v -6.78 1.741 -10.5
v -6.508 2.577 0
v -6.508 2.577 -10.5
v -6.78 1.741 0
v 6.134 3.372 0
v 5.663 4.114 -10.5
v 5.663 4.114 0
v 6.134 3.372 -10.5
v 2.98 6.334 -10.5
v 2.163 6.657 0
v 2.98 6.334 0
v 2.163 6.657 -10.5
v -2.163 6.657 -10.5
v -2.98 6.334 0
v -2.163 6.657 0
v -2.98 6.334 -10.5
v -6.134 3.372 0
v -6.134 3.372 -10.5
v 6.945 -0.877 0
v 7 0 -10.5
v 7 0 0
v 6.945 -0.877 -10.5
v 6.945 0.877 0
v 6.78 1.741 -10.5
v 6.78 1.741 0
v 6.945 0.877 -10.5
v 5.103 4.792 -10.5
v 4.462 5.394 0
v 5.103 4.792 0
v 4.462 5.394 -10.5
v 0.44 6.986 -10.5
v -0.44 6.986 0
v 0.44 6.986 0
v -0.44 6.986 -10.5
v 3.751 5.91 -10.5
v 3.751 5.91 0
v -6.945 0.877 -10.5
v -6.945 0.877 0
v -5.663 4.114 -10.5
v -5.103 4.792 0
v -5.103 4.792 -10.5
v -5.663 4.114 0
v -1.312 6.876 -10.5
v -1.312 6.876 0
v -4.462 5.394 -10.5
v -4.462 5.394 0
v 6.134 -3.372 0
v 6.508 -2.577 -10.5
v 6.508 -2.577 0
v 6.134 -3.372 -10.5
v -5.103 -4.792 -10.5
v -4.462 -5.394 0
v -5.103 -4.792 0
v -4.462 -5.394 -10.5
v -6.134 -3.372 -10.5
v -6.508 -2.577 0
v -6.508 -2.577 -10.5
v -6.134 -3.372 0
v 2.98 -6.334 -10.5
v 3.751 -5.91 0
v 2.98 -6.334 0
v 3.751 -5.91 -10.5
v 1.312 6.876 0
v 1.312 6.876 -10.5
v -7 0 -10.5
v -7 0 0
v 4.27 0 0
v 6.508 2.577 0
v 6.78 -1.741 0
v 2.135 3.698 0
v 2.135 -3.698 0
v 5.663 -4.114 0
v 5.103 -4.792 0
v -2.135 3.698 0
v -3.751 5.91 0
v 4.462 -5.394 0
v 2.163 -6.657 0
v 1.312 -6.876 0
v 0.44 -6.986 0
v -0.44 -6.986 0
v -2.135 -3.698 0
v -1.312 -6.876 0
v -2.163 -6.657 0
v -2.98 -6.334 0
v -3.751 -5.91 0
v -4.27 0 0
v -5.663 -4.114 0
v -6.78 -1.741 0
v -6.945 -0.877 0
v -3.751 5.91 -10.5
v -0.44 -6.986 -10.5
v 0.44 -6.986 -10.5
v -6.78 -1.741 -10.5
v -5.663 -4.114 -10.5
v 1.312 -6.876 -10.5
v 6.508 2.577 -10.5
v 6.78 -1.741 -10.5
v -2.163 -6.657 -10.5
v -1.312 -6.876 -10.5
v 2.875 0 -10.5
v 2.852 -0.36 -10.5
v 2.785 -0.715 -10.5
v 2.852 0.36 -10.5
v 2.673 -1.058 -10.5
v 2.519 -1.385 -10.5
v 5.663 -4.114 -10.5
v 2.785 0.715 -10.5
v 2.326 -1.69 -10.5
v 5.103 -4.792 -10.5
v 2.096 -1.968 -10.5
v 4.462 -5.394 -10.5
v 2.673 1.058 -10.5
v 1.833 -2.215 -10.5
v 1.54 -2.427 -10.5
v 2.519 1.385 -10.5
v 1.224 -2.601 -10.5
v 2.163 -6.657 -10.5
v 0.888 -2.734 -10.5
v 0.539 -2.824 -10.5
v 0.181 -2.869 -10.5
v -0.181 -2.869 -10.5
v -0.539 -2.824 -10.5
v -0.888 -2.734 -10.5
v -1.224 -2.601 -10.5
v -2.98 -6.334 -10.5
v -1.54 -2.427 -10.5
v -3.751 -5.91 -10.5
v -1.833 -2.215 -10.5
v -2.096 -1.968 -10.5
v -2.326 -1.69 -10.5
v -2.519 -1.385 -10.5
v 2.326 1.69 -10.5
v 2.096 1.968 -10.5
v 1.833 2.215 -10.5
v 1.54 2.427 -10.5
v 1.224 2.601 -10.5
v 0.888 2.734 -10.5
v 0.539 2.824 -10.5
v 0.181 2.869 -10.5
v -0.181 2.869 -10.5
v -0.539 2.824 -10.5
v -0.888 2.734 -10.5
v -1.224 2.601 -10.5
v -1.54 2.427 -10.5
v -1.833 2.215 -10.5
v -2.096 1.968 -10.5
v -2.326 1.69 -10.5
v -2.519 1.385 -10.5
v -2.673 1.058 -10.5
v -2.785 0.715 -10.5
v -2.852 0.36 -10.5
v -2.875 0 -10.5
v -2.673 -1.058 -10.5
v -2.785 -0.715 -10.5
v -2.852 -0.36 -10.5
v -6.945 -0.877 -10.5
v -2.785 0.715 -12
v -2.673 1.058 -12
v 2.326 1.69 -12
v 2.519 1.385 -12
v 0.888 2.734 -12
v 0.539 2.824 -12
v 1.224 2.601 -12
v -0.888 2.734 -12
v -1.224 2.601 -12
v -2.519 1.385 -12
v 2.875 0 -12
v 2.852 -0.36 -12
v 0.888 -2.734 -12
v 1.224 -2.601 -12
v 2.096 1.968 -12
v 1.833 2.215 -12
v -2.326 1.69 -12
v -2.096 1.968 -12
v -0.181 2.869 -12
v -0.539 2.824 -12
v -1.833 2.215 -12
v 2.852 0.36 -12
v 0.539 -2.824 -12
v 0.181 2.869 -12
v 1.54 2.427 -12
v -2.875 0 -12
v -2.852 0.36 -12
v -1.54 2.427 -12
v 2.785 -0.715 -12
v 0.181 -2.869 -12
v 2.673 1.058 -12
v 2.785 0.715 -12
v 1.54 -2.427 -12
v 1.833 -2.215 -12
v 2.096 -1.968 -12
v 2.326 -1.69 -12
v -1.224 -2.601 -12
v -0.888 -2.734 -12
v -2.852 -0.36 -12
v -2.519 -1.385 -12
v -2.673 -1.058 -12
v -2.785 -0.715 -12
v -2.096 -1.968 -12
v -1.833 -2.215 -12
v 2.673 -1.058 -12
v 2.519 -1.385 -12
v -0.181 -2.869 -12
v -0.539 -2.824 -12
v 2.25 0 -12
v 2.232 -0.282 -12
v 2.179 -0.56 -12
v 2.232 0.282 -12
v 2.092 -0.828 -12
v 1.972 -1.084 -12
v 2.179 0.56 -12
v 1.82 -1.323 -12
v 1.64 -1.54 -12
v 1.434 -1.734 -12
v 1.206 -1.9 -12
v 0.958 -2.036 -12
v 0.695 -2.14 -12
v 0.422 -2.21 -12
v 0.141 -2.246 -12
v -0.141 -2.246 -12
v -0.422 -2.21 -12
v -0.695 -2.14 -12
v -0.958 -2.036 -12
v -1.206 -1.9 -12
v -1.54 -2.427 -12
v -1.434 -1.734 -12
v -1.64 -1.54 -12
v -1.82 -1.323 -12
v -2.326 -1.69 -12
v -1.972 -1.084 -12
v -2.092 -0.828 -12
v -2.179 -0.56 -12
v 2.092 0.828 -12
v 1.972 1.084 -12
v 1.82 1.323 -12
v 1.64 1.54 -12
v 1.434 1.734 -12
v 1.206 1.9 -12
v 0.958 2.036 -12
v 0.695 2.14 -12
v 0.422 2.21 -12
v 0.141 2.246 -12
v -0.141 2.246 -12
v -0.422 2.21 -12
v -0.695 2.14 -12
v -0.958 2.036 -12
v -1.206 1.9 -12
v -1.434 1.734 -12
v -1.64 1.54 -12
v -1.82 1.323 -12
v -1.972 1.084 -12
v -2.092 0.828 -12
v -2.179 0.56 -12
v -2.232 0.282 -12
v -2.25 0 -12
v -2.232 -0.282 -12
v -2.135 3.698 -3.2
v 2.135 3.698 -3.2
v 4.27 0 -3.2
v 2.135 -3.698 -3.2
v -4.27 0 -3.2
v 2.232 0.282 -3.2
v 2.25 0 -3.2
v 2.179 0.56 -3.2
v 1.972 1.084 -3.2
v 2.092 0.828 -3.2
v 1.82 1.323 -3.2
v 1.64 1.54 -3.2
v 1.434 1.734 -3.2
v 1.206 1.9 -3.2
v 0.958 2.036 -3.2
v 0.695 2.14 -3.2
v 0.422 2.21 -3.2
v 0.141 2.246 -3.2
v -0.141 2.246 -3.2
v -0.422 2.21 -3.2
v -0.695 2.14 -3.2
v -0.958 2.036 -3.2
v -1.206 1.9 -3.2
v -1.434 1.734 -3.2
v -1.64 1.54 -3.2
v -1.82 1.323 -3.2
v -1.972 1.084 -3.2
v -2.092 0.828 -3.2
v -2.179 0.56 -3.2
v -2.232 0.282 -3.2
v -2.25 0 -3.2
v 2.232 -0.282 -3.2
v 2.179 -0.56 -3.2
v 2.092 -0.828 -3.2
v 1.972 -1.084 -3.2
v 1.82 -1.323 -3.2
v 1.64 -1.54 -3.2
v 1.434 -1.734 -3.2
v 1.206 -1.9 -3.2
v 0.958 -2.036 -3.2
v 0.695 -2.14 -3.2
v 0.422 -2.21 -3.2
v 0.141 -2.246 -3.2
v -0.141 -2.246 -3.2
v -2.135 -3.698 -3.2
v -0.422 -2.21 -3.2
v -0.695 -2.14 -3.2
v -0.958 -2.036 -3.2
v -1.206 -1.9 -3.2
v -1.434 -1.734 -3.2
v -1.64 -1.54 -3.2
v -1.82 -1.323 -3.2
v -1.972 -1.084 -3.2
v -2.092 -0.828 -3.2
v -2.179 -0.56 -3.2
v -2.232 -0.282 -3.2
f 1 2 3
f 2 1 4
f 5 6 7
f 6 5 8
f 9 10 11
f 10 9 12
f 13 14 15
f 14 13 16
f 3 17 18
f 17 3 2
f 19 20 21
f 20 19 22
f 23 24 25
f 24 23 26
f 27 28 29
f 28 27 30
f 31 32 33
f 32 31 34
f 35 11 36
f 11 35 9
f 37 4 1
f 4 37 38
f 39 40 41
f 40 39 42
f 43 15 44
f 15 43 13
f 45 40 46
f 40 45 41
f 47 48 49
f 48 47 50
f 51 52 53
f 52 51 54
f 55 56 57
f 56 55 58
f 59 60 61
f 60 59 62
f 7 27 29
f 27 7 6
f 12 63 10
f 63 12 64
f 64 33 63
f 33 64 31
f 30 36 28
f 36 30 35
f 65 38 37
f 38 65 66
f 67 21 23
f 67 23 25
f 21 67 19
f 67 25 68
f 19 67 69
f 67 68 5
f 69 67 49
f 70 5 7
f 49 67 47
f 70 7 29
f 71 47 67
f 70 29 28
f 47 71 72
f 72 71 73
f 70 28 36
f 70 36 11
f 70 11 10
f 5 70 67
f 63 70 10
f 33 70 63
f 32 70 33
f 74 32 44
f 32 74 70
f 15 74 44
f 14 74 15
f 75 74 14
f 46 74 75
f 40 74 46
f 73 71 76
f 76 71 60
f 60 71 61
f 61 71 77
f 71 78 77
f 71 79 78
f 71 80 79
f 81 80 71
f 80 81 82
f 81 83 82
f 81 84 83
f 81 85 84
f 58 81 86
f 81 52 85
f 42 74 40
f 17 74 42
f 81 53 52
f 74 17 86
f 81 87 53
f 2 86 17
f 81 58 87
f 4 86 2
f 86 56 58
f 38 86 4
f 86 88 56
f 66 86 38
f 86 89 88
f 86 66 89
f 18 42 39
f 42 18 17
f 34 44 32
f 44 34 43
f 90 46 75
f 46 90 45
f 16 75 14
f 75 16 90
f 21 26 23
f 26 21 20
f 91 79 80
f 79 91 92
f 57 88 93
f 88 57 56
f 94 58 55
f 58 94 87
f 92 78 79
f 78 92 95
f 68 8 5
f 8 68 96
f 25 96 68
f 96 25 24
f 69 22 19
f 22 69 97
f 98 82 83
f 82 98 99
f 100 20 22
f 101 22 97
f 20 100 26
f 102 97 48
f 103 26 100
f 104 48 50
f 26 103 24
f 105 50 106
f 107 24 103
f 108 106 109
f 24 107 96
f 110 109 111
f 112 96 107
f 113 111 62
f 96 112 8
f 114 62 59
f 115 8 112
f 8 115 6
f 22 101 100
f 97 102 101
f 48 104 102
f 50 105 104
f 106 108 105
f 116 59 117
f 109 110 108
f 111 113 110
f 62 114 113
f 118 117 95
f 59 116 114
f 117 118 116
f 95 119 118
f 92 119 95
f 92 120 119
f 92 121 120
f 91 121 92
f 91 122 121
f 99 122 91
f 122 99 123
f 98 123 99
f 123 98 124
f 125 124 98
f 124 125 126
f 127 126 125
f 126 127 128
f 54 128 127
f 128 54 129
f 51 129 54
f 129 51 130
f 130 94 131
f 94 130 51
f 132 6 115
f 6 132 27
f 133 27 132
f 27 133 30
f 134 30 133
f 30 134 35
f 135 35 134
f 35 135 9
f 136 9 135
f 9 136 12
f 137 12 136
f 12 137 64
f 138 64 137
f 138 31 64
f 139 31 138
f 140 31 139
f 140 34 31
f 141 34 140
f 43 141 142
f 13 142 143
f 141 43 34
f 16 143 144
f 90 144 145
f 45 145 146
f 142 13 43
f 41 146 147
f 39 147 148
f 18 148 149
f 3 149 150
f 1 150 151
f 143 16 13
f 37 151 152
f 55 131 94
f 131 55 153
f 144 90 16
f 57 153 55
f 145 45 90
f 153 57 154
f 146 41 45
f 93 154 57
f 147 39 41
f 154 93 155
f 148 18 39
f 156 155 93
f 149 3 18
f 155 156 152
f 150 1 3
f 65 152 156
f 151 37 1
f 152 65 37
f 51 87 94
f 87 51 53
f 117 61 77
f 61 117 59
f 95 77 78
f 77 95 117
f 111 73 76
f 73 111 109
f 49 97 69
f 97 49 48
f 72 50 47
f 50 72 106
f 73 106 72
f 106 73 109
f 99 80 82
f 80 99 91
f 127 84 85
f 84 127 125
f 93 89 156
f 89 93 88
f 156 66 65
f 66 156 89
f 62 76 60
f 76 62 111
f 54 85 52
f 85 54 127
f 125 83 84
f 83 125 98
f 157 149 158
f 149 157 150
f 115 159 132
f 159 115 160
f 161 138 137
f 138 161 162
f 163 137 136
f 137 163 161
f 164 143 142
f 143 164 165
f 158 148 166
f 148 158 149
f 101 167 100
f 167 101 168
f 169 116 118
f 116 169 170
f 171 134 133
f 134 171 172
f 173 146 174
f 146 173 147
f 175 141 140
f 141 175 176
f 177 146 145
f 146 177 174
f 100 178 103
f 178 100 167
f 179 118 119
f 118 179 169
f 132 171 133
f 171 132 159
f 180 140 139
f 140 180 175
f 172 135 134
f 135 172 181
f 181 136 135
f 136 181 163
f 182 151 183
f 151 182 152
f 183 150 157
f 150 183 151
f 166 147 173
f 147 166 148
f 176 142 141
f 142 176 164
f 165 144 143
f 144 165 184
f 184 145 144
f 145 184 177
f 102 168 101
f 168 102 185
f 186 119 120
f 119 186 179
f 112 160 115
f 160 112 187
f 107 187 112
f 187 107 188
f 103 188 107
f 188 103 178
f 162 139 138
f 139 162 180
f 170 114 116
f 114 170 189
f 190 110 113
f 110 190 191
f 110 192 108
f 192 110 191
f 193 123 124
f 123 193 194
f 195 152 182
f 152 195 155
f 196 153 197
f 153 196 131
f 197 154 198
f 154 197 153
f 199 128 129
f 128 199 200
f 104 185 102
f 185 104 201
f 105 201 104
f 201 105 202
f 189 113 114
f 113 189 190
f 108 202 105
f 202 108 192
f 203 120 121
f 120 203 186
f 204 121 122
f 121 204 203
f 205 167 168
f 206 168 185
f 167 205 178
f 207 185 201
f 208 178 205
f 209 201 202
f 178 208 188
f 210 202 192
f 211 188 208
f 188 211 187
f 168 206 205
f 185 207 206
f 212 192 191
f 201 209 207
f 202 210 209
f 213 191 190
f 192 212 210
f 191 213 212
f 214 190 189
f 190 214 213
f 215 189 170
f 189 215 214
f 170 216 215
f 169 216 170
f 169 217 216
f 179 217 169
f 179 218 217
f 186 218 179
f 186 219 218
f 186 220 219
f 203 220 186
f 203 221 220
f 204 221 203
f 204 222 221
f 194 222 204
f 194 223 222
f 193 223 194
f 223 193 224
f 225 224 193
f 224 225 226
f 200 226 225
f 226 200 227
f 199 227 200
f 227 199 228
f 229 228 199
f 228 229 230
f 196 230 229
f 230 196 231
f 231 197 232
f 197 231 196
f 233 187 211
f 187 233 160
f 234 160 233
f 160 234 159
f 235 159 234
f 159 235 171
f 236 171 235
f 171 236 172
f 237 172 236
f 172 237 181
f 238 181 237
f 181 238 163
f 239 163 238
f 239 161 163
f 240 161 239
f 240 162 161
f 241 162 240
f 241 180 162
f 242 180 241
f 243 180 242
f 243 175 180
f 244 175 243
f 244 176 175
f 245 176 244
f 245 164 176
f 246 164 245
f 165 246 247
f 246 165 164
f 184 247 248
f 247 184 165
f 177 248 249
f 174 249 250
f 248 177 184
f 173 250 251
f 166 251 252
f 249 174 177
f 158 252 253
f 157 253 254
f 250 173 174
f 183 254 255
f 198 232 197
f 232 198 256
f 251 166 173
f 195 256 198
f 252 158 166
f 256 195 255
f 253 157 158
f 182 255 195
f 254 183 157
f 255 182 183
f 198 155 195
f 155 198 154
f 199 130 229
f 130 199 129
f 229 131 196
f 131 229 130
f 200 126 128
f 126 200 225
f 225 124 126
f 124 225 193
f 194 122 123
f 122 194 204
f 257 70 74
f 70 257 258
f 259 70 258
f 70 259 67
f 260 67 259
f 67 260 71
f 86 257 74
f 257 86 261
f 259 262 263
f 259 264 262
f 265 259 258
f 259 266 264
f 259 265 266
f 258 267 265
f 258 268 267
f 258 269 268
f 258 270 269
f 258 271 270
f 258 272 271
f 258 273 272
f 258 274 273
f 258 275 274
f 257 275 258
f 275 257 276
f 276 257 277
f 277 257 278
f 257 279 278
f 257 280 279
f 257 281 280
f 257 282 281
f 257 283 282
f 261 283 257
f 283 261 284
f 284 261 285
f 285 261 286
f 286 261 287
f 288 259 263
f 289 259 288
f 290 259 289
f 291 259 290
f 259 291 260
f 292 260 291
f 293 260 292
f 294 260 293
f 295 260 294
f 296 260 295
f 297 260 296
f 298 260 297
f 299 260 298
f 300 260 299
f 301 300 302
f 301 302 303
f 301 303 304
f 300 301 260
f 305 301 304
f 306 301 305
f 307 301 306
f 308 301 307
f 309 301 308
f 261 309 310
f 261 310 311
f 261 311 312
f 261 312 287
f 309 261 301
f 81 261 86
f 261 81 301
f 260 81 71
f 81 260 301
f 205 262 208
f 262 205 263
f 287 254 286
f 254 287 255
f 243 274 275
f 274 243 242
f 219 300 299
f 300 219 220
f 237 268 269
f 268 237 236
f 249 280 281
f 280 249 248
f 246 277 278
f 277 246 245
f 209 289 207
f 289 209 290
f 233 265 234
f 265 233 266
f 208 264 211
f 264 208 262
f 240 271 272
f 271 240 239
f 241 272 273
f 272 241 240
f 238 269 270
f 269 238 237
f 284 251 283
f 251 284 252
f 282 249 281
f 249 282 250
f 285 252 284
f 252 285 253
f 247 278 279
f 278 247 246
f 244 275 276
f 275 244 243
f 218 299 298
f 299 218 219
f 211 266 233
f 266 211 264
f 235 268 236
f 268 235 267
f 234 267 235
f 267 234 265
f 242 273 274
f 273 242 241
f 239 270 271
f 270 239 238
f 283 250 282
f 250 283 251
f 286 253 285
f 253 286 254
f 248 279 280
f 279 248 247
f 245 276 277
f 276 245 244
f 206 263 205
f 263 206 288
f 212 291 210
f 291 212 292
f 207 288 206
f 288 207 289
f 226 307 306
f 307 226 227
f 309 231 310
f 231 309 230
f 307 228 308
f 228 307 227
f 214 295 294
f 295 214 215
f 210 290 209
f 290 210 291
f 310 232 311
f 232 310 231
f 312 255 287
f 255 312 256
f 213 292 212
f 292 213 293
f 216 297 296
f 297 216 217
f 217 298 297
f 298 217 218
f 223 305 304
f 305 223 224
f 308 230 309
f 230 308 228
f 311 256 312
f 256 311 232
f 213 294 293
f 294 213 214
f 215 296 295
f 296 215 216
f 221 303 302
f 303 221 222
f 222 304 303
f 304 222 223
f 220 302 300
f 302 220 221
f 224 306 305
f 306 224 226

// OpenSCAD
$fn = 50;


difference() {
	union() {
		translate(v = [0, 0, -10.5000000000]) {
			cylinder(h = 10.5000000000, r = 7.0000000000);
		}
		#translate(v = [0, 0, -12.0000000000]) {
			cylinder(h = 12, r = 2.8750000000);
		}
	}
	union() {
		translate(v = [0, 0, 0]) {
			rotate(a = [0, 0, 0]) {
				difference() {
					union() {
						translate(v = [0, 0, -3.2000000000]) {
							linear_extrude(height = 3.2000000000) {
								polygon(points = [[4.2698000000, 0.0000000000], [2.1349000000, 3.6977552691], [-2.1349000000, 3.6977552691], [-4.2698000000, 0.0000000000], [-2.1349000000, -3.6977552691], [2.1349000000, -3.6977552691]]);
							}
						}
					}
					union();
				}
			}
		}
		#translate(v = [0, 0, -100.0000000000]) {
			cylinder(h = 200, r = 2.2500000000);
		}
	}
}
